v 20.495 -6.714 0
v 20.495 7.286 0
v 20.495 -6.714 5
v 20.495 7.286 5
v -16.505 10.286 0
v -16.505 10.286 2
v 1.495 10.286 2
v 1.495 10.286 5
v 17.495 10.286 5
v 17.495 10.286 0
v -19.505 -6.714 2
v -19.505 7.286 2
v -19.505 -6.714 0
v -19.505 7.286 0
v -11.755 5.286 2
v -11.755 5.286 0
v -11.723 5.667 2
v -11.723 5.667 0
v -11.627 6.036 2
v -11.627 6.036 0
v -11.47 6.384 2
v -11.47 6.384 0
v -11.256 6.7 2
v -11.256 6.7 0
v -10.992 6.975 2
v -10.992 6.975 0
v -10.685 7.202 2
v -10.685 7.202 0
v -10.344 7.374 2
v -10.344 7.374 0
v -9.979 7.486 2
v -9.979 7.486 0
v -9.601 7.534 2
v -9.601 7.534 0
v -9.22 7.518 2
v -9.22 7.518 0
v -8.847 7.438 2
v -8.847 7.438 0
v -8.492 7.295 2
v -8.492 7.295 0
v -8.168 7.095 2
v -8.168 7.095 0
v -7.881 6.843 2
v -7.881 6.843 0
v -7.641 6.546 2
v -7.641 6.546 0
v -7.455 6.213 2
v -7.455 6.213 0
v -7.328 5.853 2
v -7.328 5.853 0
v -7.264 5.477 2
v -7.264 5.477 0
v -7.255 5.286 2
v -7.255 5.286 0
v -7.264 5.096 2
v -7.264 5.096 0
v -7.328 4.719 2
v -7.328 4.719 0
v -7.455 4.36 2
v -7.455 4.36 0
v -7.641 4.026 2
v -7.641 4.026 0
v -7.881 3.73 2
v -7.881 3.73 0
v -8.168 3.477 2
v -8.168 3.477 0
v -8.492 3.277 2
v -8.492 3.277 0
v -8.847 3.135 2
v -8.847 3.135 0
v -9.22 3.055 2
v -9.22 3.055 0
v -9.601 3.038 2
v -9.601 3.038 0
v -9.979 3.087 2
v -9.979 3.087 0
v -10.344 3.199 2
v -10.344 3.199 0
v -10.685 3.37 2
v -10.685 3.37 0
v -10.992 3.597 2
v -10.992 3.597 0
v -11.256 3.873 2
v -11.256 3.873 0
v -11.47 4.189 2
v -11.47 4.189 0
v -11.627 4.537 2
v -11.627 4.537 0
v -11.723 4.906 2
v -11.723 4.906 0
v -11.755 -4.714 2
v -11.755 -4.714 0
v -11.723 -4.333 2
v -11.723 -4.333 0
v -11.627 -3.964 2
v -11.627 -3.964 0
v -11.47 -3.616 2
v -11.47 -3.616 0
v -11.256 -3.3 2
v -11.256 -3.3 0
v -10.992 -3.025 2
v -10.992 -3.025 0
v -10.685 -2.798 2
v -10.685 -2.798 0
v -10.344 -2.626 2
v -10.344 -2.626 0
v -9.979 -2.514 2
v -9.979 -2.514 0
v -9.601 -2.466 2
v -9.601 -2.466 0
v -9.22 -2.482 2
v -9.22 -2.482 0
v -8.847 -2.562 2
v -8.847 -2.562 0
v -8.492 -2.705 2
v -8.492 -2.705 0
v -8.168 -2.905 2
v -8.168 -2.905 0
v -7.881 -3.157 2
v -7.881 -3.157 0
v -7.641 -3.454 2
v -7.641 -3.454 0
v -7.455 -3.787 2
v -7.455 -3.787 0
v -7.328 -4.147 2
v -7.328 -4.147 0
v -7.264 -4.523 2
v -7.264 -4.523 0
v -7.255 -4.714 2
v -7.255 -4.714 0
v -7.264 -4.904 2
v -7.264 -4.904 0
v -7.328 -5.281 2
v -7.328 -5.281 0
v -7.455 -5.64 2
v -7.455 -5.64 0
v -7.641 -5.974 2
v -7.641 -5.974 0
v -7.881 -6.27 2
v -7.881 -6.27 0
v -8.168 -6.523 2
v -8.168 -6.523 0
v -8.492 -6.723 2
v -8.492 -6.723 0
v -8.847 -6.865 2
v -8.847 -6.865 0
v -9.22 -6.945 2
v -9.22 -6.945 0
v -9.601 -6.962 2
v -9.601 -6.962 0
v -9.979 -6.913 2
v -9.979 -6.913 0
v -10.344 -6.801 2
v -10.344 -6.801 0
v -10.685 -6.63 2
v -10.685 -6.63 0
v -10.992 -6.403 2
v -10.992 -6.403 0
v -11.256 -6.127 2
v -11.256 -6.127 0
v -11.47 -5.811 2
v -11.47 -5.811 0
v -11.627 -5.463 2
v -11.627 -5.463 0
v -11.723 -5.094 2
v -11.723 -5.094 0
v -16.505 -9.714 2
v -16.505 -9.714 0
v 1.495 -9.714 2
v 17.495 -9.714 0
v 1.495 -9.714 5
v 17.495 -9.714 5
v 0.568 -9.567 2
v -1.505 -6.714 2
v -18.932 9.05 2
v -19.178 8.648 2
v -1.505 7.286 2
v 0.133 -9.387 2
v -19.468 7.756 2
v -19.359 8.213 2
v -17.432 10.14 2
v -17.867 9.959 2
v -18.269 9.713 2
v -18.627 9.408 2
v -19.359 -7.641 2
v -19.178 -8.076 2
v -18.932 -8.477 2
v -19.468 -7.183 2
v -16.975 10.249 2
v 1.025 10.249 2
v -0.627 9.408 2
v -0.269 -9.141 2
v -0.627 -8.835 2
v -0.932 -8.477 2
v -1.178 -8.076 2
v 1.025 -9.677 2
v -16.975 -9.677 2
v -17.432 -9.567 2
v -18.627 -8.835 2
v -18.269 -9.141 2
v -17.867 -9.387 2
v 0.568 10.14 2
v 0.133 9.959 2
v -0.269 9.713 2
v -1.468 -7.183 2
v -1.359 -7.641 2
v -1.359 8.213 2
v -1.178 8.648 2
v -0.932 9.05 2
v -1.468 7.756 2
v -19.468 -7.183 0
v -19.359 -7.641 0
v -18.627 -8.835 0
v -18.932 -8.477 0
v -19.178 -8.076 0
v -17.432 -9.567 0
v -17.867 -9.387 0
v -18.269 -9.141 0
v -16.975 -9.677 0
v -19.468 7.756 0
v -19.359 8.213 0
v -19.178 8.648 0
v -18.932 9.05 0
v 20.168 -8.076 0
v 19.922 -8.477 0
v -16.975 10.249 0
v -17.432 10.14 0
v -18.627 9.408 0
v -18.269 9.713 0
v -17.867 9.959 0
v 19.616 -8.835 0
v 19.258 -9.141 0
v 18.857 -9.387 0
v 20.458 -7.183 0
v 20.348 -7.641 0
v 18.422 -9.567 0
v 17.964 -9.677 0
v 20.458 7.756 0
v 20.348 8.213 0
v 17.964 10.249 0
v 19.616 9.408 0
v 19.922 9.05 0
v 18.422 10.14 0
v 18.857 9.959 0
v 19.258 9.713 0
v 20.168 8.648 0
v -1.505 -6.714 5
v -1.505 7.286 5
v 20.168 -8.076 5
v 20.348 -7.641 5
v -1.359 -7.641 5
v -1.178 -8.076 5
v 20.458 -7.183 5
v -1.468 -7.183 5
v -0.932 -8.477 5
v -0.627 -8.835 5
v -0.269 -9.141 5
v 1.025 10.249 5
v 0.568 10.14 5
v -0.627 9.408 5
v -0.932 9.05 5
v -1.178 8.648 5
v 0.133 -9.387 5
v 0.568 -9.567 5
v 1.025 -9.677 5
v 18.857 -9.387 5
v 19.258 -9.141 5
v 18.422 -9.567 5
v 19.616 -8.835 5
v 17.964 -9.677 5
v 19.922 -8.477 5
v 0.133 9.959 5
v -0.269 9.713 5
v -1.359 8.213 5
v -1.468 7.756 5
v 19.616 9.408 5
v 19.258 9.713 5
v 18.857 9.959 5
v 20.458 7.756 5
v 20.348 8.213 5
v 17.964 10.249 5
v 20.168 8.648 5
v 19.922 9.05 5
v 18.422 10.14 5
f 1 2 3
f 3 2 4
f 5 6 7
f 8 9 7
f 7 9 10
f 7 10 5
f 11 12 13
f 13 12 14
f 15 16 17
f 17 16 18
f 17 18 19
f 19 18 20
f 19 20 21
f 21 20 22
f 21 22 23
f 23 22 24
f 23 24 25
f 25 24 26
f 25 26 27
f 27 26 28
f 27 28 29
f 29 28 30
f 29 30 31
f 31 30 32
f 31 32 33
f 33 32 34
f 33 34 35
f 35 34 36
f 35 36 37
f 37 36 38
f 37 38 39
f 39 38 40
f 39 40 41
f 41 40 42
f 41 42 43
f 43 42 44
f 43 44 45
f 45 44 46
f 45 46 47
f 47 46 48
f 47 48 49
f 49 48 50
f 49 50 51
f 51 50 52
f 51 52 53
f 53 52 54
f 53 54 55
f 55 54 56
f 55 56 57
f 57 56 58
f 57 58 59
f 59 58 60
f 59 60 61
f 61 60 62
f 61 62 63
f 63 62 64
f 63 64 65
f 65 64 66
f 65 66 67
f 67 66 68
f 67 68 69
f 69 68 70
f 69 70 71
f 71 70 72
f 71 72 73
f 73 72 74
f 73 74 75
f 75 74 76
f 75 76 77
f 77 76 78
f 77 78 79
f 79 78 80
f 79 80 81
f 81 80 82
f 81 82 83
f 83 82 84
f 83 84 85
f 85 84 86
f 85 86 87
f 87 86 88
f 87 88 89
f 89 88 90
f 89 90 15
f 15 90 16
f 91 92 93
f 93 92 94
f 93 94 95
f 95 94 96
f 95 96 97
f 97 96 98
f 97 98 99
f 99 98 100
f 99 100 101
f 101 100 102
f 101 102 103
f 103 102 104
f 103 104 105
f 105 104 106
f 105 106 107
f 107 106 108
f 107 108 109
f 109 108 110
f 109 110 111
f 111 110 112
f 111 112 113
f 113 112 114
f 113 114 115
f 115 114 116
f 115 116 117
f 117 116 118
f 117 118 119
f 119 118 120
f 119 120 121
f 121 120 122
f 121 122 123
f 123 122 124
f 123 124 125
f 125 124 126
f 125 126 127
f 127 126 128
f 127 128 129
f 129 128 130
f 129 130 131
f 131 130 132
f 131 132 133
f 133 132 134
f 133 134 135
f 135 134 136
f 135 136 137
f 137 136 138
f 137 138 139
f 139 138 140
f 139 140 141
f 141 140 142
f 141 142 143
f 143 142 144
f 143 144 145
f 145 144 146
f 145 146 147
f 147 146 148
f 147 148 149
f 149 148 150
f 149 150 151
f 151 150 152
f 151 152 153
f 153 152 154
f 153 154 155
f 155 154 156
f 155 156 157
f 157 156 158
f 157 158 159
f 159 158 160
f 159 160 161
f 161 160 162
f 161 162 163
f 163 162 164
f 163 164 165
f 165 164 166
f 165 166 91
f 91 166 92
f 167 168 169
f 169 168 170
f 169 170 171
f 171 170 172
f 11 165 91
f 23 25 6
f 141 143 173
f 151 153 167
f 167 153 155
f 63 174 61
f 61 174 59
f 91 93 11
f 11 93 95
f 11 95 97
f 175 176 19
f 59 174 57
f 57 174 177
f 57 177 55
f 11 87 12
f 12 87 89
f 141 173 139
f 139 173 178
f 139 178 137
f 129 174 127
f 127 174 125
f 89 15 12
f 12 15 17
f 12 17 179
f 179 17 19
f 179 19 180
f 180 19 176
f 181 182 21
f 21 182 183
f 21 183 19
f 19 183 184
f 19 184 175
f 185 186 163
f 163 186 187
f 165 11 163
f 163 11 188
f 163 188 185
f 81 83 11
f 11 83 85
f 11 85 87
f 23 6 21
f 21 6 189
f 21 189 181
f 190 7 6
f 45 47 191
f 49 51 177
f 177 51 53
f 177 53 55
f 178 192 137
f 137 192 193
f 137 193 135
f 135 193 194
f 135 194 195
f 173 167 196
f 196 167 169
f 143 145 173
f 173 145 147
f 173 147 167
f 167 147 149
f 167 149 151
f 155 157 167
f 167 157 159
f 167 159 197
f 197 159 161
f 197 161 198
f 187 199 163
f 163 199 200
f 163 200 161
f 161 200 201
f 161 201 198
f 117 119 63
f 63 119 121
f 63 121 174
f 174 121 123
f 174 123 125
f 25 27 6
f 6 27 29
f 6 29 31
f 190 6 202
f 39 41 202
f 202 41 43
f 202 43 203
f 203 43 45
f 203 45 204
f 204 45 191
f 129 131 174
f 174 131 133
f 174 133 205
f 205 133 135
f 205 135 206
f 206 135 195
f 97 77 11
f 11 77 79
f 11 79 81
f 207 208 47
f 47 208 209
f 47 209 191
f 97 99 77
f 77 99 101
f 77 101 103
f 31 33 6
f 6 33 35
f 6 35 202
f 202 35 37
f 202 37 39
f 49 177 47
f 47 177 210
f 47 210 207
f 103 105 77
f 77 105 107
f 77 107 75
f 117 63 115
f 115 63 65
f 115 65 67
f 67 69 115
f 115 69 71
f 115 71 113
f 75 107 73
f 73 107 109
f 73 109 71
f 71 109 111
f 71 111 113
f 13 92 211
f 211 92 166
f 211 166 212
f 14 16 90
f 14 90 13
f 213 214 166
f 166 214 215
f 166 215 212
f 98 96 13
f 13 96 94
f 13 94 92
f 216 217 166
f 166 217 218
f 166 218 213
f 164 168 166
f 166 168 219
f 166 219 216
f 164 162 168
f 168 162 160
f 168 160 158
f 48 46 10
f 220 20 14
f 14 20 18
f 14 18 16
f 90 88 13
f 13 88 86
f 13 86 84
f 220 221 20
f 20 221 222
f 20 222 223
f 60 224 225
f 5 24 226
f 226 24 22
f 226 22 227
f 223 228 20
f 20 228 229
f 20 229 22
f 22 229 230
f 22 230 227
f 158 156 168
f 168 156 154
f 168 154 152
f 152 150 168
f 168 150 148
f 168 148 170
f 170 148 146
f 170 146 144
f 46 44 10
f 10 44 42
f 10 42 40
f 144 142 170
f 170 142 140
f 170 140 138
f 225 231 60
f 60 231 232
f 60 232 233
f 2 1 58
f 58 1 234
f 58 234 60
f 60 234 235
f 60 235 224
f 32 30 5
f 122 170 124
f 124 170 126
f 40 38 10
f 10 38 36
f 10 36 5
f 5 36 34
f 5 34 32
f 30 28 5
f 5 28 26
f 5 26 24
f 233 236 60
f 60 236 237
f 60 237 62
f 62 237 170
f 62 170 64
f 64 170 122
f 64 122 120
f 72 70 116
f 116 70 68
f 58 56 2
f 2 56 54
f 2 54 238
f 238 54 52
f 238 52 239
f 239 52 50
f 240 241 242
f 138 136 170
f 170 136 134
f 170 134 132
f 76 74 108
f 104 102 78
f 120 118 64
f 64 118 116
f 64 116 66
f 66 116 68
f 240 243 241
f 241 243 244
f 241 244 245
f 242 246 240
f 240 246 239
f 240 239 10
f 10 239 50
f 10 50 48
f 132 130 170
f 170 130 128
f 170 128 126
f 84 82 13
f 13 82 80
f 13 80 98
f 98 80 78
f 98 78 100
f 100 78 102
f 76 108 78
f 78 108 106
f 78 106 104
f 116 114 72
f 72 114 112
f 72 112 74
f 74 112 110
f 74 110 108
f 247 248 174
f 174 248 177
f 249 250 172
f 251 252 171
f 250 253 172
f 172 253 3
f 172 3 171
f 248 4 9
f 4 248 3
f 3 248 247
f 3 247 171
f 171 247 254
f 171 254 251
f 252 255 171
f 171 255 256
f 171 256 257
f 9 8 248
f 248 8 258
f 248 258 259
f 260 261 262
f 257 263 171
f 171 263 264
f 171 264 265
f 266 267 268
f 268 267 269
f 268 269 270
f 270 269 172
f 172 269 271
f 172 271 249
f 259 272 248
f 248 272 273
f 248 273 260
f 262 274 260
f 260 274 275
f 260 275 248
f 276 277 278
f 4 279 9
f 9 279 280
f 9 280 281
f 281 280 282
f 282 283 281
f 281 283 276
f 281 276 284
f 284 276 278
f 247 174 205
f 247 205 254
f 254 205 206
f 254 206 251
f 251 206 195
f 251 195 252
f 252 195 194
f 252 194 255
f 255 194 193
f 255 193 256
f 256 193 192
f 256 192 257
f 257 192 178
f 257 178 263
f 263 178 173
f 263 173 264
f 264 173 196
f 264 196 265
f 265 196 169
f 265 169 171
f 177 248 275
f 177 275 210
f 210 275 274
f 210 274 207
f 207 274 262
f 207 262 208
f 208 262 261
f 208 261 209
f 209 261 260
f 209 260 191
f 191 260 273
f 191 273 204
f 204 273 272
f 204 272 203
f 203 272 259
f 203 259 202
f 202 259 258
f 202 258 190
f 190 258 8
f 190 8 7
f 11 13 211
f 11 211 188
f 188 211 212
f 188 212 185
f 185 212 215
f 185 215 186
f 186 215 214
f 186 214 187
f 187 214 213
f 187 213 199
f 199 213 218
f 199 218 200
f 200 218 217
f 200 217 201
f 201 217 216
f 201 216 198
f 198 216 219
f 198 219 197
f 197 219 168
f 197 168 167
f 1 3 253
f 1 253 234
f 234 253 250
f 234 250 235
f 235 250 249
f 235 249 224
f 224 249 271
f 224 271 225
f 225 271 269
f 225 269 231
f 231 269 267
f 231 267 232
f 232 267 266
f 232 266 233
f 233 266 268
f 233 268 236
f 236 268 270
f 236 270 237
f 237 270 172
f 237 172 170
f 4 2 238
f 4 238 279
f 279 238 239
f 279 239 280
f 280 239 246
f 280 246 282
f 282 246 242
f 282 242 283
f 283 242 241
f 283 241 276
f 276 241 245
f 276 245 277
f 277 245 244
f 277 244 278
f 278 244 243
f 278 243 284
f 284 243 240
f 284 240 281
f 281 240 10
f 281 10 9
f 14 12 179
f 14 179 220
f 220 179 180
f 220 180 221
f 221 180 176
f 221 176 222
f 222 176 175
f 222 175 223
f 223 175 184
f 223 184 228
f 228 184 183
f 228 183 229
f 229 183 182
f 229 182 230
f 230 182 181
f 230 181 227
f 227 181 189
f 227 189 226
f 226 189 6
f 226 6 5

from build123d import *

# Parameters (mm, degrees)
SZKIC1_W                    = 40
SZKIC1_H                    = 20
SZKIC1_R                    = 2.25
DODANIE_WYCI_GNI_CIE1_DEPTH = 2
SZKIC3_W                    = 22
SZKIC3_H                    = 20
DODANIE_WYCI_GNI_CIE3_DEPTH = 3
ZAOKR_GLENIE1_R             = 3


with BuildPart() as part:
    # Szkic1 → Dodanie-wyciągnięcie1 (new body)
    with BuildSketch(Plane.XY):
        with Locations((0.494567618, 0.286392586)):
            Rectangle(SZKIC1_W, SZKIC1_H)
        with Locations((-9.505432382, 5.286392586)):
            Circle(SZKIC1_R, mode=Mode.SUBTRACT)
        with Locations((-9.505432382, -4.713607414)):
            Circle(SZKIC1_R, mode=Mode.SUBTRACT)
    extrude(amount=DODANIE_WYCI_GNI_CIE1_DEPTH)

    # Szkic3 → Dodanie-wyciągnięcie3 (add)
    with BuildSketch(Plane.XY.offset(2)):
        with Locations((9.494567618, 0.286392586)):
            Rectangle(SZKIC3_W, SZKIC3_H)
    extrude(amount=DODANIE_WYCI_GNI_CIE3_DEPTH)

    # Zaokrąglenie1
    zaokr_glenie1_edges = [part.edges().sort_by_distance(p)[0] for p in [
        (20.494567618, -9.713607414, 2.5),
        (-19.505432382, -9.713607414, 1),
        (-19.505432382, 10.286392586, 1),
        (20.494567618, 10.286392586, 2.5),
        (-1.505432382, 10.286392586, 3.5),
        (-1.505432382, -9.713607414, 3.5),
    ]]
    fillet(zaokr_glenie1_edges, radius=ZAOKR_GLENIE1_R)


solid = part.part
